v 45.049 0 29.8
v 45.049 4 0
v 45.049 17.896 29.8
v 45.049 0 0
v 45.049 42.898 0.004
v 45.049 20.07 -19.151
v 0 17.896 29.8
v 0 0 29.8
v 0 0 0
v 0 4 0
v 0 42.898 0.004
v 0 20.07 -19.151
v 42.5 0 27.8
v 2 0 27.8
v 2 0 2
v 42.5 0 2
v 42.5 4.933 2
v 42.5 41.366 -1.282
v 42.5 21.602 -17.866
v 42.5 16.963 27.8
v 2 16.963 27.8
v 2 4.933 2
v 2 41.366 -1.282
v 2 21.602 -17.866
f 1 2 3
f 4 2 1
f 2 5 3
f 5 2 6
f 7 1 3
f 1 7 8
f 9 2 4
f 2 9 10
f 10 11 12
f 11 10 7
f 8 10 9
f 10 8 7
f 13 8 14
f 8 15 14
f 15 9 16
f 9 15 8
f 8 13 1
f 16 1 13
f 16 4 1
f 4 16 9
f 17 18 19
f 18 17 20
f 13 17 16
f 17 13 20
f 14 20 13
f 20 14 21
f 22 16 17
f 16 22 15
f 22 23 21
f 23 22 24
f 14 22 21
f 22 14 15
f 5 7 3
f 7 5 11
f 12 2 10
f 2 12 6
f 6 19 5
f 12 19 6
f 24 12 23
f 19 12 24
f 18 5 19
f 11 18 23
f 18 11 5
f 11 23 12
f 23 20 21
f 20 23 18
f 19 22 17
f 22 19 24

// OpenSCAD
//

// it was about .5mm off over 40.5mm for the width
prusai3fudge = .5/40.5 + 1;

wallSize = 2;
spoutWidth = 40.5;
spoutHeight = 25.8;
spoutWidthOuter = (spoutWidth+wallSize*2) * prusai3fudge;
spoutHeightOuter = spoutHeight+wallSize*2;

module Conduit(length=100, angle=45) {
    alpha = 90 - (angle / 2);
    b = spoutHeightOuter / tan(alpha);
    d = sin(alpha) * b;
    difference() {
        cube([spoutWidthOuter, length+b, spoutHeightOuter]);
        translate([wallSize, -1, wallSize])
        cube([spoutWidth, length+b+2, spoutHeight]);
        translate([-1, length, 0])
        rotate([-angle/2, 0, 0])
        cube([spoutWidthOuter+2, d+1, spoutHeightOuter/sin(alpha)+1]);
    }
}


attachLen = 4;
spoutLen = 25;
angle = 50;

Conduit(attachLen, angle);
drop = sin(angle) * spoutLen;
shift = cos(angle) * spoutLen + attachLen;
mirror([0, 1, 0])
translate([0, -shift, -drop])
rotate([angle, 0, 0])
Conduit(spoutLen, angle);
